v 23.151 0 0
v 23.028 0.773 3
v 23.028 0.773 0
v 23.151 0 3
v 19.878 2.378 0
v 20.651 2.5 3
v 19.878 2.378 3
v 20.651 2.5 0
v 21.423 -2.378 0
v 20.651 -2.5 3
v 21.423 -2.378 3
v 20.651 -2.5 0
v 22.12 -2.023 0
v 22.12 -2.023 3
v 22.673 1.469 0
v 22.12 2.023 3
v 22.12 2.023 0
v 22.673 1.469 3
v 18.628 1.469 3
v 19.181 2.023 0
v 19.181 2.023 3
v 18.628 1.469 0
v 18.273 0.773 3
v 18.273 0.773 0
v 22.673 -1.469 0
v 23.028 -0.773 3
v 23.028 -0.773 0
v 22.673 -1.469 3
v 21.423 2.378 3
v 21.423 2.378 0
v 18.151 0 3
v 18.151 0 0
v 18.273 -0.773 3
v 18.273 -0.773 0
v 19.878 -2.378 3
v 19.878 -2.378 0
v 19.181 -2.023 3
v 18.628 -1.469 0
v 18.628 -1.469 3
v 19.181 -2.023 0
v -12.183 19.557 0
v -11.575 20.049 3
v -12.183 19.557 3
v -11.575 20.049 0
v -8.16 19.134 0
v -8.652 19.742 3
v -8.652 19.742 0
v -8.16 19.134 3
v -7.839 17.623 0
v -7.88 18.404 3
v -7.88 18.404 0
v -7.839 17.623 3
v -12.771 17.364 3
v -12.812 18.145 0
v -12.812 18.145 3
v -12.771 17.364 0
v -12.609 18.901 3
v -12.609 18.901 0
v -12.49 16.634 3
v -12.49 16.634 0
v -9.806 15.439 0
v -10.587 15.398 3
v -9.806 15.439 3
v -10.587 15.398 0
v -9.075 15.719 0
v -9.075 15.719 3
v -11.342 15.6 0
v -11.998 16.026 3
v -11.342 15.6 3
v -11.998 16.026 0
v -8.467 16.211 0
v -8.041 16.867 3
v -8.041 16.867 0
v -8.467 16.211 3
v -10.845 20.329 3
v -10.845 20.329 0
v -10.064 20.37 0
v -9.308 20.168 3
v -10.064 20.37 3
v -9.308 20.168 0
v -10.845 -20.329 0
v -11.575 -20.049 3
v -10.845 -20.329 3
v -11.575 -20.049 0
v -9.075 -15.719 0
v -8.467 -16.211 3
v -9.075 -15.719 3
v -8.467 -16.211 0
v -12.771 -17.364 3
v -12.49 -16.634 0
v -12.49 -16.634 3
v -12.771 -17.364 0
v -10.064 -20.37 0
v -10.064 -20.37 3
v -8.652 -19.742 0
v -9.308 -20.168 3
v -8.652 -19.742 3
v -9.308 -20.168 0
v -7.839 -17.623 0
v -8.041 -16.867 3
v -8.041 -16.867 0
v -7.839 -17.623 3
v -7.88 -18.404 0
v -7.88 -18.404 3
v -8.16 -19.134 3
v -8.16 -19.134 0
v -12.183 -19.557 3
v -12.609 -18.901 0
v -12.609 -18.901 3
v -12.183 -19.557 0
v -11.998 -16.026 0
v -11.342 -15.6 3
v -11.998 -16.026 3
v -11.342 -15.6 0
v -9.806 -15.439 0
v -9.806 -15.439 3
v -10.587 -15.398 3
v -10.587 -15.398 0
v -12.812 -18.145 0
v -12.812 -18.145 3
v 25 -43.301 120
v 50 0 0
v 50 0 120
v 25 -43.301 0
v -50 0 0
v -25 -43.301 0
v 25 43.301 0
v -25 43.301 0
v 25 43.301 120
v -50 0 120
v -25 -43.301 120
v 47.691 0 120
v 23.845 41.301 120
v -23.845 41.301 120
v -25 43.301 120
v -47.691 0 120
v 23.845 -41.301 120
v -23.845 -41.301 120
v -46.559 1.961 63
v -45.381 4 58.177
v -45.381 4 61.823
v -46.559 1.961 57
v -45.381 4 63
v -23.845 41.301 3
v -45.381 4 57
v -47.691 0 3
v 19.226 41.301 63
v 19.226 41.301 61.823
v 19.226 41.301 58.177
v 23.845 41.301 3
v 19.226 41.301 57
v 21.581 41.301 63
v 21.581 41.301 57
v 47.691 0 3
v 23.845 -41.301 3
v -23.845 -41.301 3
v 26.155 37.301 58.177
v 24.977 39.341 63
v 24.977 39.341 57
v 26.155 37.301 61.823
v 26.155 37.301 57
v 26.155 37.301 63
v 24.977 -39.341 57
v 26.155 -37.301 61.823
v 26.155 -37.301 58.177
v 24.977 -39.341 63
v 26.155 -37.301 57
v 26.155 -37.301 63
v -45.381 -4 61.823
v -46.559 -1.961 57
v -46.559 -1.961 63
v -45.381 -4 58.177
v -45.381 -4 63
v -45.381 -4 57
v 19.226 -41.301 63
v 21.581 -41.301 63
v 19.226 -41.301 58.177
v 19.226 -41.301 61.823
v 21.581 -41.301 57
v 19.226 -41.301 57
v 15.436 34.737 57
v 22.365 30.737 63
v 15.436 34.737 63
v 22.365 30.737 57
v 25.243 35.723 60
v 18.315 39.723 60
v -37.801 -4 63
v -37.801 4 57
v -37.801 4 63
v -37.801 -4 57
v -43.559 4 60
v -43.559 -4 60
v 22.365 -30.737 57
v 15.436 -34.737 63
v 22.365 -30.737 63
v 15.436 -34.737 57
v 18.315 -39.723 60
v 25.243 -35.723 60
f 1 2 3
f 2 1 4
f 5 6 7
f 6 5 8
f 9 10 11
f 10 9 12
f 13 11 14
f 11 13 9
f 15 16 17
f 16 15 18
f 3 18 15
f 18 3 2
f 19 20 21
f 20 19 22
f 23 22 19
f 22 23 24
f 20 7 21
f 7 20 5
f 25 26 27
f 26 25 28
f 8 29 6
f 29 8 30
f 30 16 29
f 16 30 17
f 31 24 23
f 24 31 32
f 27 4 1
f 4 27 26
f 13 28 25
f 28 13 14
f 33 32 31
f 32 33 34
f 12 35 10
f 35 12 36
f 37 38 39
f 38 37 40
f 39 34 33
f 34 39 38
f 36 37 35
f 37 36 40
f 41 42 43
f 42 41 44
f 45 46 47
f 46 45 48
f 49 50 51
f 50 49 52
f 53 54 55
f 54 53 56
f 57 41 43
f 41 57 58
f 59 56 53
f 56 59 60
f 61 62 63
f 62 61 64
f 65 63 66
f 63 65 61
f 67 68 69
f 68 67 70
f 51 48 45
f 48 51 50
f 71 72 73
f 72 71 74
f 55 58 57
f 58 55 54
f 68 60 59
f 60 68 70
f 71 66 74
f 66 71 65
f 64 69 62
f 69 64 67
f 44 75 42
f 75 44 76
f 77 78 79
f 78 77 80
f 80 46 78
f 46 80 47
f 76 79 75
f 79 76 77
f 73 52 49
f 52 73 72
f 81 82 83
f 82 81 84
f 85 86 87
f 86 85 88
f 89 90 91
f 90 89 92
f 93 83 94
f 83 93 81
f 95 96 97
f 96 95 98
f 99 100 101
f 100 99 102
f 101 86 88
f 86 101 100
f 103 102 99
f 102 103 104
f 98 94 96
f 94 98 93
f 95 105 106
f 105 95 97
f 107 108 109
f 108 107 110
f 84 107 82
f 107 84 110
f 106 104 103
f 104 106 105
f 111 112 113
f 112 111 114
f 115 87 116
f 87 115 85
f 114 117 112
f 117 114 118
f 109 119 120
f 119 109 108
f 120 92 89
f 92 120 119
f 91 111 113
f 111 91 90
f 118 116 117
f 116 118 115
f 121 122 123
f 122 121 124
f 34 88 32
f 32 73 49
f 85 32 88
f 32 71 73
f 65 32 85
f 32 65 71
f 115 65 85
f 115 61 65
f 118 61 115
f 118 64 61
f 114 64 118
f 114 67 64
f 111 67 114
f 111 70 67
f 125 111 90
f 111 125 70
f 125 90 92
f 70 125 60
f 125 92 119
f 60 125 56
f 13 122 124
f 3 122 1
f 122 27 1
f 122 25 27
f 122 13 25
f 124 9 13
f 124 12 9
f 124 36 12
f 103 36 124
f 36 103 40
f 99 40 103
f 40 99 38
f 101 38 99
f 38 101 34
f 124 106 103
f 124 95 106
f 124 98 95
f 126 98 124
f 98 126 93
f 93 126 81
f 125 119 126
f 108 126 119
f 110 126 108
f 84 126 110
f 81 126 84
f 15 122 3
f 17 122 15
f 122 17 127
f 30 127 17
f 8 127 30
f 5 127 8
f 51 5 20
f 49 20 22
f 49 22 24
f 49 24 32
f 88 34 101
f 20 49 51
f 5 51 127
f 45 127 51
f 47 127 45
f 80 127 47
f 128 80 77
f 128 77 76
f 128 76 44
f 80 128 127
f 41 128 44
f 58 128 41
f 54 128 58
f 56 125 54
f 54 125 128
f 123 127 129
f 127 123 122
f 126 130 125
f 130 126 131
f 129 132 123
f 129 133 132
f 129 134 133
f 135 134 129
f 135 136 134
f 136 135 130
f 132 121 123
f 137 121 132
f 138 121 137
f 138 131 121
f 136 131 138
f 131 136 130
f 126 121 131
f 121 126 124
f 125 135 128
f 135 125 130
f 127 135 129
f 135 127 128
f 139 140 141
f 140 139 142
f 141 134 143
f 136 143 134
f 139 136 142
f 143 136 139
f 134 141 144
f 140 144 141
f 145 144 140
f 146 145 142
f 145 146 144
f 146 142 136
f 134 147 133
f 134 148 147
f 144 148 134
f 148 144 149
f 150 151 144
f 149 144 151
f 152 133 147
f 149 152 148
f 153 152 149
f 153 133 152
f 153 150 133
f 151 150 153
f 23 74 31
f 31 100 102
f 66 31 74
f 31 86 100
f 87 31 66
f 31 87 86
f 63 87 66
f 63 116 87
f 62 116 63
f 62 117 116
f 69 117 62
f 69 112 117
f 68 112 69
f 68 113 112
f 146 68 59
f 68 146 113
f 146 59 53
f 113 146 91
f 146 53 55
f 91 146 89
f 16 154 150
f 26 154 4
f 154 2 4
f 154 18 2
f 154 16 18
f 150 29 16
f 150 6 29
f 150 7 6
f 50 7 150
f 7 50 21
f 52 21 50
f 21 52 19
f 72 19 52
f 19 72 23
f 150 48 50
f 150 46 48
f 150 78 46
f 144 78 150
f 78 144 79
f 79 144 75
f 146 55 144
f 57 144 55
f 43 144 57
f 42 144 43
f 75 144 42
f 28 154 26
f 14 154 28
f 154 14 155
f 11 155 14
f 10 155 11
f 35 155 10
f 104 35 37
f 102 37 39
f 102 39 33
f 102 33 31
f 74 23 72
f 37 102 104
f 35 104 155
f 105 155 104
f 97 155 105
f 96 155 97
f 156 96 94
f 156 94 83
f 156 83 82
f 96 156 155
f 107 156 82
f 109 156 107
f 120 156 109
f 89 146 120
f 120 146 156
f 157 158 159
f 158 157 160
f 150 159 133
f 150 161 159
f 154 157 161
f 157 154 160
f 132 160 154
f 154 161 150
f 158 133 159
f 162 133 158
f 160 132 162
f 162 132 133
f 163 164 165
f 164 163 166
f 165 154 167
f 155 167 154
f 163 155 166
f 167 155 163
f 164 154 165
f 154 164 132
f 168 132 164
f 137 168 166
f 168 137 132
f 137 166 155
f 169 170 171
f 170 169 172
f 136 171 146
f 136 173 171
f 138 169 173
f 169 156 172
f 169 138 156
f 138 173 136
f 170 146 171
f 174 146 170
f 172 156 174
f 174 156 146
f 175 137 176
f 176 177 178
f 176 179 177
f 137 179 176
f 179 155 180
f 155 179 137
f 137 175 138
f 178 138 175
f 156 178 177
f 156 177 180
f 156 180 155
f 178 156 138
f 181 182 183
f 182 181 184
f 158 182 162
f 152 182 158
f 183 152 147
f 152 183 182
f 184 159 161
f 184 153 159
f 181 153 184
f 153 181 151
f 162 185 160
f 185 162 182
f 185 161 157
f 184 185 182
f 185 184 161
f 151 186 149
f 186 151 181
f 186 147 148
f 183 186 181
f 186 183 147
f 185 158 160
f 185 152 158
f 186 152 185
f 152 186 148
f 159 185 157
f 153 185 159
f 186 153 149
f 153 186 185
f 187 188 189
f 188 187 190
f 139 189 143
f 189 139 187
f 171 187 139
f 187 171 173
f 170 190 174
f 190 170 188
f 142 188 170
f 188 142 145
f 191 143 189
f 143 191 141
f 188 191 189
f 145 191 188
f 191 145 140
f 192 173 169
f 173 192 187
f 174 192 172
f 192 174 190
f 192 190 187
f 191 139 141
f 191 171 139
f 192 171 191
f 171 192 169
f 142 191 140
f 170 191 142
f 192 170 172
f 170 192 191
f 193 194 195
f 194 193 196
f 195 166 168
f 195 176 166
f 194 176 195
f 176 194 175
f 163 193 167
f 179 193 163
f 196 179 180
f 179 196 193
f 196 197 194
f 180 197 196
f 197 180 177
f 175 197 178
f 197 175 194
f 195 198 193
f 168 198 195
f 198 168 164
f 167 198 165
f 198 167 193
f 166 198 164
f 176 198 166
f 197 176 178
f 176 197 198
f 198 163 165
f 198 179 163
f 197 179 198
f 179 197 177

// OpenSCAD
// Modular Planter - Tall (Tall for deep-rooted plants)
// Generated by customizer.py

// Parameters
hex_size = 50;
height = 120;
wall_thickness = 2;
bottom_thickness = 3;
drainage_hole_d = 5;
connector_depth = 5;
connector_tolerance = 0.3;

// Derived values
apothem = hex_size * sqrt(3) / 2;
inner_apothem = apothem - wall_thickness;

// Main planter module
module planter_module() {
    difference() {
        linear_extrude(height = height)
            hexagon(apothem);
        
        translate([0, 0, bottom_thickness])
            linear_extrude(height = height - bottom_thickness + 1)
                hexagon(inner_apothem);
        
        for (i = [0:2]) {
            rotate([0, 0, i * 120])
                translate([inner_apothem * 0.5, 0, -1])
                    cylinder(d = drainage_hole_d, h = bottom_thickness + 2, $fn=20);
        }
    }
    
    for (i = [0:2]) {
        rotate([0, 0, i * 120 + 60])
            translate([apothem - 0.5, 0, height * 0.5])
                connector_male();
    }
}

module hexagon(r) {
    circle(r = r / cos(30), $fn = 6);
}

module connector_male() {
    difference() {
        cube([connector_depth * 2, 8, 6], center = true);
        translate([connector_depth, 0, 0])
            rotate([0, 45, 0])
                cube([6, 10, 6], center = true);
    }
}

planter_module();
